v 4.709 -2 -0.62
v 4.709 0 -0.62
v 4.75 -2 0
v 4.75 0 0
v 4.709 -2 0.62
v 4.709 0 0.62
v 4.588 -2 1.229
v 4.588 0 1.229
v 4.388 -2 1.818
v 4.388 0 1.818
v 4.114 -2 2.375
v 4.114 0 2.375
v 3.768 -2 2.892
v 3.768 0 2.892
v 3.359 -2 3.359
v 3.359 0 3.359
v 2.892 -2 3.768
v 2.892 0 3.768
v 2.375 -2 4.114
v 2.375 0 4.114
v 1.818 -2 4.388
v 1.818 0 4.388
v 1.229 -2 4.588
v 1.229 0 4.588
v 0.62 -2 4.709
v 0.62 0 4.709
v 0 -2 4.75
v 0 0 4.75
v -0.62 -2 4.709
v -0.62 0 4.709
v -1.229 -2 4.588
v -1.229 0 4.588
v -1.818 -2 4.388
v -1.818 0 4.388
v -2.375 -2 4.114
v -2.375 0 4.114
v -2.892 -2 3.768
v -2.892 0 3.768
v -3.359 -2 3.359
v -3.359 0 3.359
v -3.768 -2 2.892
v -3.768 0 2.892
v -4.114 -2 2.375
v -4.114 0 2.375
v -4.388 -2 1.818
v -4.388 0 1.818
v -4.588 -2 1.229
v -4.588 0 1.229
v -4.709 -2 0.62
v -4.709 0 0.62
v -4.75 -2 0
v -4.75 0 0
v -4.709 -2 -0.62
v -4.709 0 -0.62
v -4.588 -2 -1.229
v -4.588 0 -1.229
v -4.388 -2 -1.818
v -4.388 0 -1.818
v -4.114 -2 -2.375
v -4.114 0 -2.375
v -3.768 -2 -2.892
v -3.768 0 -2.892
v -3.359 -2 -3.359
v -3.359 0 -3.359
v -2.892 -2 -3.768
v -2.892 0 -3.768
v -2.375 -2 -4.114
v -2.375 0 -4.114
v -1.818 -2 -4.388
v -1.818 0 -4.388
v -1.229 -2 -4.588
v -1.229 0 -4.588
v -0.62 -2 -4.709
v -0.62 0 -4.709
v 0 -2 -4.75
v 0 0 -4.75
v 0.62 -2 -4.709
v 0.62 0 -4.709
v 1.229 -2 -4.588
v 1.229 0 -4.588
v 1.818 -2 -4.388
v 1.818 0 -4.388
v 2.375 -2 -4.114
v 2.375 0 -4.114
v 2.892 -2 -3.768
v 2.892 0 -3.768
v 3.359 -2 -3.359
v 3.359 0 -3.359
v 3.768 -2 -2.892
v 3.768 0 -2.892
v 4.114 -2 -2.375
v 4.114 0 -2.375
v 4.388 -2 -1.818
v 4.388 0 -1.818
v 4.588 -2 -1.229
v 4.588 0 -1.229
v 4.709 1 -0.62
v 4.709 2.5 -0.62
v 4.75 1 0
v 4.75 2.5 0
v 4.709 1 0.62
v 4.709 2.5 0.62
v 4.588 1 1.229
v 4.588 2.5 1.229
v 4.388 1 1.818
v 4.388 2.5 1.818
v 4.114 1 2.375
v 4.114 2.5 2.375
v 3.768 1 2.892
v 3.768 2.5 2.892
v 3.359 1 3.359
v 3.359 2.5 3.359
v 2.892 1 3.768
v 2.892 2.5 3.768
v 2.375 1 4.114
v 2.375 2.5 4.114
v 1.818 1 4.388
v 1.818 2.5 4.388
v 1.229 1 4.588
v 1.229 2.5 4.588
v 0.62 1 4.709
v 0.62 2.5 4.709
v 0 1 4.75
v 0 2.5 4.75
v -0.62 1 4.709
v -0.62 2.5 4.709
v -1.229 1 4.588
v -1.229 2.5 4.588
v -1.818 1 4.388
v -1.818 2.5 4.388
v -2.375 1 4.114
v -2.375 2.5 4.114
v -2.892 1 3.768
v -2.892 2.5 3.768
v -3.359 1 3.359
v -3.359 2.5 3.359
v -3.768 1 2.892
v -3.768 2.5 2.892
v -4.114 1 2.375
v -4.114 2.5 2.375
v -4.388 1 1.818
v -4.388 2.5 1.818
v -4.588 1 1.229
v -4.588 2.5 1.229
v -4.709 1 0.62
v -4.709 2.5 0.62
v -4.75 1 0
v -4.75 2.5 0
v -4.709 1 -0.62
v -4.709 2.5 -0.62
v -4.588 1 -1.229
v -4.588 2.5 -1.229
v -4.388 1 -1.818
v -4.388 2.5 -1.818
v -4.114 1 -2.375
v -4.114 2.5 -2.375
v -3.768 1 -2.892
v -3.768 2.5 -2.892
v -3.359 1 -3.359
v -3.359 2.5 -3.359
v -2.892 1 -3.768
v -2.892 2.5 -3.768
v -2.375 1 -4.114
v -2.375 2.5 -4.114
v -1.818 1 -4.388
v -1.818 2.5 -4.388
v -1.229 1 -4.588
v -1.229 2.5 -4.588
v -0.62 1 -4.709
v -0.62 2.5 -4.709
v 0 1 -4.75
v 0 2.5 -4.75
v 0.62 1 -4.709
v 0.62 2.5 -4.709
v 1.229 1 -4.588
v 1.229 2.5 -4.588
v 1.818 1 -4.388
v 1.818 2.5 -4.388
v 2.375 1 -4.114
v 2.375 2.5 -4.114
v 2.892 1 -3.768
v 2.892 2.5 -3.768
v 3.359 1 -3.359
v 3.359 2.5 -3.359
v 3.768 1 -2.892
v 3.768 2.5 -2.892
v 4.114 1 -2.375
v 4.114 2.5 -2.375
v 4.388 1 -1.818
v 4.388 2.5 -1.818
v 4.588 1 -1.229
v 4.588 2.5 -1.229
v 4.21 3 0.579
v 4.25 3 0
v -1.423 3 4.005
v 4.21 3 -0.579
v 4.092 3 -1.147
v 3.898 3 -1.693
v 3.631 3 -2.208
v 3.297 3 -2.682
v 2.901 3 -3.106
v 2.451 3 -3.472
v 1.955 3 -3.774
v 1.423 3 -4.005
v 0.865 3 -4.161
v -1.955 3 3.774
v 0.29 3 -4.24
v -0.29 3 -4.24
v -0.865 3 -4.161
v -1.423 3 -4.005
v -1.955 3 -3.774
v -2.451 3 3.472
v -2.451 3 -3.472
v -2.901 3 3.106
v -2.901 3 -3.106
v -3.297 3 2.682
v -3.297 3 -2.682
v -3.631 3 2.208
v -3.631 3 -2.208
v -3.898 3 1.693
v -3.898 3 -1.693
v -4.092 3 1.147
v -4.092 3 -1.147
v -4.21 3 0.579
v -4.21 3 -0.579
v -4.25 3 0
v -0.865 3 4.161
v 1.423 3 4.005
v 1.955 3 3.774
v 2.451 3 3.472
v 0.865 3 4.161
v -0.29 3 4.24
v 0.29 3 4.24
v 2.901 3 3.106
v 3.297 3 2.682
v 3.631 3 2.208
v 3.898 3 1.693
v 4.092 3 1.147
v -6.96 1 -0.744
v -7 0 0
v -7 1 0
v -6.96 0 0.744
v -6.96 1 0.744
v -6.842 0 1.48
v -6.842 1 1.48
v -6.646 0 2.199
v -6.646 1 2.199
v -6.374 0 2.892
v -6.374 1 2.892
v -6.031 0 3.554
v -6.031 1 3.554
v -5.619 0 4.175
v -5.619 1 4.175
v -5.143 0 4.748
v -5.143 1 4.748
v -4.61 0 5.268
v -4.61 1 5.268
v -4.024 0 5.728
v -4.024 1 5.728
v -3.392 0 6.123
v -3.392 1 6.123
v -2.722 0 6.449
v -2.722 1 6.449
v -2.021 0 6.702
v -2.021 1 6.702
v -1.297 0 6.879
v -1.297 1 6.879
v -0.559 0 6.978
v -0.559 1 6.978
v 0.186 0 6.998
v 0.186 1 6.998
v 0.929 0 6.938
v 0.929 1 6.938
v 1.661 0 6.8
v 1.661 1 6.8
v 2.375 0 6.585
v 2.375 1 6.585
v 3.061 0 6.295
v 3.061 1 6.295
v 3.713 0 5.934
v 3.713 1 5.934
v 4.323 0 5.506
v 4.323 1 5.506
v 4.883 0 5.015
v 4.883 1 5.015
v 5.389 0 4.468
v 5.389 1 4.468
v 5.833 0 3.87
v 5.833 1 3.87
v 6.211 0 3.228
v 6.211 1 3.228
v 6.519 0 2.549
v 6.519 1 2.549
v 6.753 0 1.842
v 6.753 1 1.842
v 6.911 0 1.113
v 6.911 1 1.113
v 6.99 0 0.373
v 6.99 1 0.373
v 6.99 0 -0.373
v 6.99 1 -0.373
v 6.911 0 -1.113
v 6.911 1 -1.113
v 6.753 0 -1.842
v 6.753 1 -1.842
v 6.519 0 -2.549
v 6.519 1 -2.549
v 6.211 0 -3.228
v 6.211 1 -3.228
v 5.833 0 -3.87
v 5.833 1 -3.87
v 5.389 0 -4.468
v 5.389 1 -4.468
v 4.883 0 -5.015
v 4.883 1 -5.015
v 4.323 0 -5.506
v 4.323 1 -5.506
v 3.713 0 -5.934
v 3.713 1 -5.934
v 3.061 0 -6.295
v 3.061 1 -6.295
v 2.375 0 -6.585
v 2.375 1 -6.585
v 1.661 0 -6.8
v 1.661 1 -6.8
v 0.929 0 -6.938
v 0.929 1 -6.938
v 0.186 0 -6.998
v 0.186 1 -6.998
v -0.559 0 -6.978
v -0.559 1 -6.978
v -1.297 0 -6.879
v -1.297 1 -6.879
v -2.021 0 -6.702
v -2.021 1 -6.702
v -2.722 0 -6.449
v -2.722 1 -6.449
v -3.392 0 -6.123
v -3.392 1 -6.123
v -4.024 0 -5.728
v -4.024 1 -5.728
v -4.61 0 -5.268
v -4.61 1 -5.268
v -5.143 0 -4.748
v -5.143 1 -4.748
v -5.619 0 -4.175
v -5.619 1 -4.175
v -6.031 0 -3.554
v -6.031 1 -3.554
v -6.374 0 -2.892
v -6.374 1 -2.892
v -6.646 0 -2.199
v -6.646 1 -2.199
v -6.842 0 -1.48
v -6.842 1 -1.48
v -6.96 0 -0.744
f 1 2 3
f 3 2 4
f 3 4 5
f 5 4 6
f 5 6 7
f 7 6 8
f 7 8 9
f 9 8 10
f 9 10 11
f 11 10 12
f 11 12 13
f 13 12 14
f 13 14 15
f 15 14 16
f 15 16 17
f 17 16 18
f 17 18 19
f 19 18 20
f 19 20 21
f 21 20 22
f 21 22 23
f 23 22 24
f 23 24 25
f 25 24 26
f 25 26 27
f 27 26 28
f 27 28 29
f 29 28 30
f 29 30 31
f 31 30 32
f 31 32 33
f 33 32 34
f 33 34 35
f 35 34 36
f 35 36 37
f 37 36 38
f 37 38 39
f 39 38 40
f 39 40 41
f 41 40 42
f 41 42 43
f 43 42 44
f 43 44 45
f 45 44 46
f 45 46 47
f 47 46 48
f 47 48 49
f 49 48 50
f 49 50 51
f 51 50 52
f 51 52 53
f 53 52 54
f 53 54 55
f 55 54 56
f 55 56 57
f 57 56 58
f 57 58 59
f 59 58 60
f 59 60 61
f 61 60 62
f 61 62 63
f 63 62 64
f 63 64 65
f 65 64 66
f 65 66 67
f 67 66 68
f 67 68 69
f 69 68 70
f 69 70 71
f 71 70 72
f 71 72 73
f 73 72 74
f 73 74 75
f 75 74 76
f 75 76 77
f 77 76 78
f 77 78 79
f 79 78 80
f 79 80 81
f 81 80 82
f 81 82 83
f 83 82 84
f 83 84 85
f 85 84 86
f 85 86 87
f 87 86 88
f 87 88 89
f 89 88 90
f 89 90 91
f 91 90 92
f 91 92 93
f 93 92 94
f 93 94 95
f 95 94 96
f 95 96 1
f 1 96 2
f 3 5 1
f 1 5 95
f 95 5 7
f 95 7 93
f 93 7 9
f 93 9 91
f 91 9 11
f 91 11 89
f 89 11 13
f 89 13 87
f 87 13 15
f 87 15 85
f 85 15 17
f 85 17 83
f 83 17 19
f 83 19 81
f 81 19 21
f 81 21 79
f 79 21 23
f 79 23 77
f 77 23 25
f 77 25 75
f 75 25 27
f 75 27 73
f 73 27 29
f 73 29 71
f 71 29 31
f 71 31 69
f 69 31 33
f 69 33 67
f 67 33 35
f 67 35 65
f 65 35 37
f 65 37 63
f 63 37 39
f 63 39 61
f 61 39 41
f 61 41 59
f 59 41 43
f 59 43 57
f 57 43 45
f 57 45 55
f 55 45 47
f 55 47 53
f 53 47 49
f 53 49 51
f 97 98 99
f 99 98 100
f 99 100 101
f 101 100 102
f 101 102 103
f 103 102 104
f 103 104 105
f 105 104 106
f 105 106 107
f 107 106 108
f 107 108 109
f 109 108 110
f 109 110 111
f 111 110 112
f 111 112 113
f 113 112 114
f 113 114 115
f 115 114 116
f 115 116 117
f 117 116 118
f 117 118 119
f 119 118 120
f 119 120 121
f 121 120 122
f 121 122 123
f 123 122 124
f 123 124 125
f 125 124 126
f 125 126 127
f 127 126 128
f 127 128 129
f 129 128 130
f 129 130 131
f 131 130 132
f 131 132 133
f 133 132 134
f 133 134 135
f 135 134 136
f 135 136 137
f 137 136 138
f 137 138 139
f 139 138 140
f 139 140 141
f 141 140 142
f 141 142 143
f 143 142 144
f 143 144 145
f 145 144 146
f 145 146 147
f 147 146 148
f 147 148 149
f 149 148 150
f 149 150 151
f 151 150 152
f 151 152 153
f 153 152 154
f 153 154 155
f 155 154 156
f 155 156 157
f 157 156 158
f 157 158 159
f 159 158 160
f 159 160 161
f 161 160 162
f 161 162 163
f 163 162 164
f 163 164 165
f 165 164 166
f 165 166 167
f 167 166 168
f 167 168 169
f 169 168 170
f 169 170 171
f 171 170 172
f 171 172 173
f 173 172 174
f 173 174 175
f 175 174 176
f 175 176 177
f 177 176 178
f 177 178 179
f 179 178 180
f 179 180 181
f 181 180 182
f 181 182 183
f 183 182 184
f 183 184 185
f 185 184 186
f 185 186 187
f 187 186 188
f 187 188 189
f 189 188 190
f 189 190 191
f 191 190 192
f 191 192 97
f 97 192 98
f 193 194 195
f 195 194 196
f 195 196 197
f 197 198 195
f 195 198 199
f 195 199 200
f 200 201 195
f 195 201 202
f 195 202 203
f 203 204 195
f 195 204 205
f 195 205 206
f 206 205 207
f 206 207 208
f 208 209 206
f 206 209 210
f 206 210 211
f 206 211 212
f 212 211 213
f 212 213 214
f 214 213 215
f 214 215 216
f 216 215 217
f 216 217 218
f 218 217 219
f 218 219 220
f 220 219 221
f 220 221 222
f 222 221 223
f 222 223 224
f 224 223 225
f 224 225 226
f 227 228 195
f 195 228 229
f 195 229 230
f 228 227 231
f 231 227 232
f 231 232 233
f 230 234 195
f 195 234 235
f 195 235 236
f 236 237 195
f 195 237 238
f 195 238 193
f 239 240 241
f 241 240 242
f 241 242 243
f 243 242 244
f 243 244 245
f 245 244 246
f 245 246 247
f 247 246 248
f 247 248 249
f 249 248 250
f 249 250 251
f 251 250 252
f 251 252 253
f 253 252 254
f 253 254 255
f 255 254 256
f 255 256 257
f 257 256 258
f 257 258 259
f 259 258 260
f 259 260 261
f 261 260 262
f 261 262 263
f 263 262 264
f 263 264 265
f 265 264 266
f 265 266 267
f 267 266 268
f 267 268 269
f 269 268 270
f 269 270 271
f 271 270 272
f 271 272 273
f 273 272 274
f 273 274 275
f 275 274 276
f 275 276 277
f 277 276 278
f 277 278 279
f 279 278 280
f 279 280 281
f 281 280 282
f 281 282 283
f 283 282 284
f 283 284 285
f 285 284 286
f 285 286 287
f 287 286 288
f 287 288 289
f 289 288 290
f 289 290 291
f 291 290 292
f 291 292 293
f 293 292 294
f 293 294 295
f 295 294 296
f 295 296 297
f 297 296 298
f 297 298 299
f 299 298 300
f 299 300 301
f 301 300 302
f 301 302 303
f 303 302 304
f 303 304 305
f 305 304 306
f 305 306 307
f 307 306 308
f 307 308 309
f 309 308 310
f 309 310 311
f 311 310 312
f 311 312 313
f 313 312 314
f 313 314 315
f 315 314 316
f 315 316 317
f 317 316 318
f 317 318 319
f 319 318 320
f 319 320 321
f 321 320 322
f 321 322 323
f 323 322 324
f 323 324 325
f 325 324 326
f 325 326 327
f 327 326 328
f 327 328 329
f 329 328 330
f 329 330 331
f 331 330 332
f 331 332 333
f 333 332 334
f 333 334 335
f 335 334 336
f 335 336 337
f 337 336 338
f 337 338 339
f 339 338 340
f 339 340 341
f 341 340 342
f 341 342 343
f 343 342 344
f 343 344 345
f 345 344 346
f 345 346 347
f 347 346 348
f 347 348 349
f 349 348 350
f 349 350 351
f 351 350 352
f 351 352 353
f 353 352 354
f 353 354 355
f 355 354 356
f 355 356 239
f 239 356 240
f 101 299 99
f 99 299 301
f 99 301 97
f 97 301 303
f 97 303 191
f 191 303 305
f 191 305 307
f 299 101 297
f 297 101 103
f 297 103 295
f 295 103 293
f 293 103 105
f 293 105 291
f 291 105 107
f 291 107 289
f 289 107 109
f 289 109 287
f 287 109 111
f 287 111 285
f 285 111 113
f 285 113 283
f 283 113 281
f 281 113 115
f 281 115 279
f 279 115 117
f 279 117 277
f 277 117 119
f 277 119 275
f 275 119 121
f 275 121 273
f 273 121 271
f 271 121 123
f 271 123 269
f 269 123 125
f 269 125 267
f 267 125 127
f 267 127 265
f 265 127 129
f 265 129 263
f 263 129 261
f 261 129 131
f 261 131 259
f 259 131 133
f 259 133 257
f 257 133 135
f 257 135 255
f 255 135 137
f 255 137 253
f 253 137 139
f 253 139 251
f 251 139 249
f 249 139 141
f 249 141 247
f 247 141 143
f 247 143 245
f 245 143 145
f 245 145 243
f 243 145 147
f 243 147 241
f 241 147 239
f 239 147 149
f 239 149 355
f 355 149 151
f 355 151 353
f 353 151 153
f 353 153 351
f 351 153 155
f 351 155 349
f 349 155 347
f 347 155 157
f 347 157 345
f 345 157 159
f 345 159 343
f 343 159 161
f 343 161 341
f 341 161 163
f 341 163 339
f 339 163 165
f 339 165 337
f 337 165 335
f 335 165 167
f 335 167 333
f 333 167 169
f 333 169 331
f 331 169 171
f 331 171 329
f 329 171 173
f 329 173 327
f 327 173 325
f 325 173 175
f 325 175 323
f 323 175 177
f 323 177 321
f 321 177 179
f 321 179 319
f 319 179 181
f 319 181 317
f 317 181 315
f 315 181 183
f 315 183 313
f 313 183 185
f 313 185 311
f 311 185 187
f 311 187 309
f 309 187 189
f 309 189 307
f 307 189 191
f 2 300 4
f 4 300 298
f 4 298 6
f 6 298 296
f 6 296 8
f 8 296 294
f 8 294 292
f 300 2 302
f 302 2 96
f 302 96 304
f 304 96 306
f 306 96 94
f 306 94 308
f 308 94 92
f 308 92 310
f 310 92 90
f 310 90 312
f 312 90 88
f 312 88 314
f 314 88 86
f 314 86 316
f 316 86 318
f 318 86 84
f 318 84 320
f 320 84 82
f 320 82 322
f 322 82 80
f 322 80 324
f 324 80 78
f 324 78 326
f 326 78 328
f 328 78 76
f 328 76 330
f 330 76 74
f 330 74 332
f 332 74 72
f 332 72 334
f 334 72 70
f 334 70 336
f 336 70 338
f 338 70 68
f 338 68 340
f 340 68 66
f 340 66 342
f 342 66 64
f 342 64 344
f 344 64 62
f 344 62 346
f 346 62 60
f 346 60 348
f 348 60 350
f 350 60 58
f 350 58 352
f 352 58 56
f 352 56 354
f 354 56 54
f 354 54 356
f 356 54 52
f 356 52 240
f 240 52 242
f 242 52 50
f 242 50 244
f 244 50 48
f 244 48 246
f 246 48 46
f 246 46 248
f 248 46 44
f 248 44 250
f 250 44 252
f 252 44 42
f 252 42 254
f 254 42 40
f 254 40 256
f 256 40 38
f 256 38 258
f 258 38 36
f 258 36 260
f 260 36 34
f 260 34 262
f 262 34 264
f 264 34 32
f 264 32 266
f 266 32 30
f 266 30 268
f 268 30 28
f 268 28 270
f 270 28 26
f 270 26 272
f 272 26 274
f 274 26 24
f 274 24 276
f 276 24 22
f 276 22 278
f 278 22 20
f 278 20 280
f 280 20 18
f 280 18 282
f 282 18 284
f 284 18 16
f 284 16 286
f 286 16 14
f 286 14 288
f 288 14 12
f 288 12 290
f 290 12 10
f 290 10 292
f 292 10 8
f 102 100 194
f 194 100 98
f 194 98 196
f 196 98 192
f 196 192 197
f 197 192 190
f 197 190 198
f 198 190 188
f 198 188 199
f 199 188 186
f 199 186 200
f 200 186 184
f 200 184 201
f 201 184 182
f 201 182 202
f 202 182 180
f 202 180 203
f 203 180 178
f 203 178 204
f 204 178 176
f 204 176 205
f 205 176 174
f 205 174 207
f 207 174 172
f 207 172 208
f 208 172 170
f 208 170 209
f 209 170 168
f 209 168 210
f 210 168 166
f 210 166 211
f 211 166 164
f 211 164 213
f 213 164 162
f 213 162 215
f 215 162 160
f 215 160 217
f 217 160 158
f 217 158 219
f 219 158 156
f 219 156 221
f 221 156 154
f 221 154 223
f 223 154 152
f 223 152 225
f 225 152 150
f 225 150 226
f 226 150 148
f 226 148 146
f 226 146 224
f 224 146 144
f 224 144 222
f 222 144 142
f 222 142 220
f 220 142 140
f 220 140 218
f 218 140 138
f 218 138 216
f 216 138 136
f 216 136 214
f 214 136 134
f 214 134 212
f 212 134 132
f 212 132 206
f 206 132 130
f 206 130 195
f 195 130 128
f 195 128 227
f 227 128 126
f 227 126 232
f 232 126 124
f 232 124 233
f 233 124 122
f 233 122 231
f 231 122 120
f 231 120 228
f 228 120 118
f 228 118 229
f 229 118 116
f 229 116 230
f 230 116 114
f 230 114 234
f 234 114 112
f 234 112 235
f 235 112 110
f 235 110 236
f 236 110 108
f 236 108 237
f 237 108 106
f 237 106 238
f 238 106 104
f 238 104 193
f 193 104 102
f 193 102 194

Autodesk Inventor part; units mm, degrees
ref_plane "YZ Plane" through (0, 0, 0) normal (1, 0, 0) x (0, 1, 0)
ref_plane "XZ Plane" through (0, 0, 0) normal (0, 1, 0) x (-1, 0, 0)
ref_plane "XY Plane" through (0, 0, 0) normal (0, 0, 1) x (1, 0, 0)
sketch "Sketch1" plane through (0, 0, 0) normal (0, 1, 0) x (-1, 0, 0)
  circle A0 centre (0, 0) radius 7
  dimension "d0" = 14
extrude "Extrusion1" add sketch "Sketch1" along normal blind 1
sketch "Sketch2" plane through (0, 1, 0) normal (0, 1, 0) x (1, 0, 0)
  circle A0 centre (0, 0) radius 4.75
  dimension "d3" = 9.5
extrude "Extrusion2" add sketch "Sketch2" along normal blind 2
sketch "Sketch3" plane through (0, 0, 0) normal (0, -1, 0) x (1, 0, 0)
  circle A0 centre (0, 0) radius 4.75
extrude "Extrusion3" add sketch "Sketch3" along normal blind 2
chamfer "Chamfer1" distance 0.5 angle 45 1 edges at (-4.75, 3, 0)
equation "\"BendRadius\" = Thickness"
equation "\"BendReliefWidth\" = Thickness"
equation "\"BendReliefDepth\" = 0.5 * Thickness"
equation "\"CornerReliefSize\" = 4 * Thickness"
equation "\"MinimumRemnant\" = 2 * Thickness"
equation "\"TransitionRadius\" = BendRadius"
equation "\"JacobiRadiusSize\" = BendRadius"
equation "\"GapSize\" = Thickness"
equation "\"Thickness\" = 0.5"
